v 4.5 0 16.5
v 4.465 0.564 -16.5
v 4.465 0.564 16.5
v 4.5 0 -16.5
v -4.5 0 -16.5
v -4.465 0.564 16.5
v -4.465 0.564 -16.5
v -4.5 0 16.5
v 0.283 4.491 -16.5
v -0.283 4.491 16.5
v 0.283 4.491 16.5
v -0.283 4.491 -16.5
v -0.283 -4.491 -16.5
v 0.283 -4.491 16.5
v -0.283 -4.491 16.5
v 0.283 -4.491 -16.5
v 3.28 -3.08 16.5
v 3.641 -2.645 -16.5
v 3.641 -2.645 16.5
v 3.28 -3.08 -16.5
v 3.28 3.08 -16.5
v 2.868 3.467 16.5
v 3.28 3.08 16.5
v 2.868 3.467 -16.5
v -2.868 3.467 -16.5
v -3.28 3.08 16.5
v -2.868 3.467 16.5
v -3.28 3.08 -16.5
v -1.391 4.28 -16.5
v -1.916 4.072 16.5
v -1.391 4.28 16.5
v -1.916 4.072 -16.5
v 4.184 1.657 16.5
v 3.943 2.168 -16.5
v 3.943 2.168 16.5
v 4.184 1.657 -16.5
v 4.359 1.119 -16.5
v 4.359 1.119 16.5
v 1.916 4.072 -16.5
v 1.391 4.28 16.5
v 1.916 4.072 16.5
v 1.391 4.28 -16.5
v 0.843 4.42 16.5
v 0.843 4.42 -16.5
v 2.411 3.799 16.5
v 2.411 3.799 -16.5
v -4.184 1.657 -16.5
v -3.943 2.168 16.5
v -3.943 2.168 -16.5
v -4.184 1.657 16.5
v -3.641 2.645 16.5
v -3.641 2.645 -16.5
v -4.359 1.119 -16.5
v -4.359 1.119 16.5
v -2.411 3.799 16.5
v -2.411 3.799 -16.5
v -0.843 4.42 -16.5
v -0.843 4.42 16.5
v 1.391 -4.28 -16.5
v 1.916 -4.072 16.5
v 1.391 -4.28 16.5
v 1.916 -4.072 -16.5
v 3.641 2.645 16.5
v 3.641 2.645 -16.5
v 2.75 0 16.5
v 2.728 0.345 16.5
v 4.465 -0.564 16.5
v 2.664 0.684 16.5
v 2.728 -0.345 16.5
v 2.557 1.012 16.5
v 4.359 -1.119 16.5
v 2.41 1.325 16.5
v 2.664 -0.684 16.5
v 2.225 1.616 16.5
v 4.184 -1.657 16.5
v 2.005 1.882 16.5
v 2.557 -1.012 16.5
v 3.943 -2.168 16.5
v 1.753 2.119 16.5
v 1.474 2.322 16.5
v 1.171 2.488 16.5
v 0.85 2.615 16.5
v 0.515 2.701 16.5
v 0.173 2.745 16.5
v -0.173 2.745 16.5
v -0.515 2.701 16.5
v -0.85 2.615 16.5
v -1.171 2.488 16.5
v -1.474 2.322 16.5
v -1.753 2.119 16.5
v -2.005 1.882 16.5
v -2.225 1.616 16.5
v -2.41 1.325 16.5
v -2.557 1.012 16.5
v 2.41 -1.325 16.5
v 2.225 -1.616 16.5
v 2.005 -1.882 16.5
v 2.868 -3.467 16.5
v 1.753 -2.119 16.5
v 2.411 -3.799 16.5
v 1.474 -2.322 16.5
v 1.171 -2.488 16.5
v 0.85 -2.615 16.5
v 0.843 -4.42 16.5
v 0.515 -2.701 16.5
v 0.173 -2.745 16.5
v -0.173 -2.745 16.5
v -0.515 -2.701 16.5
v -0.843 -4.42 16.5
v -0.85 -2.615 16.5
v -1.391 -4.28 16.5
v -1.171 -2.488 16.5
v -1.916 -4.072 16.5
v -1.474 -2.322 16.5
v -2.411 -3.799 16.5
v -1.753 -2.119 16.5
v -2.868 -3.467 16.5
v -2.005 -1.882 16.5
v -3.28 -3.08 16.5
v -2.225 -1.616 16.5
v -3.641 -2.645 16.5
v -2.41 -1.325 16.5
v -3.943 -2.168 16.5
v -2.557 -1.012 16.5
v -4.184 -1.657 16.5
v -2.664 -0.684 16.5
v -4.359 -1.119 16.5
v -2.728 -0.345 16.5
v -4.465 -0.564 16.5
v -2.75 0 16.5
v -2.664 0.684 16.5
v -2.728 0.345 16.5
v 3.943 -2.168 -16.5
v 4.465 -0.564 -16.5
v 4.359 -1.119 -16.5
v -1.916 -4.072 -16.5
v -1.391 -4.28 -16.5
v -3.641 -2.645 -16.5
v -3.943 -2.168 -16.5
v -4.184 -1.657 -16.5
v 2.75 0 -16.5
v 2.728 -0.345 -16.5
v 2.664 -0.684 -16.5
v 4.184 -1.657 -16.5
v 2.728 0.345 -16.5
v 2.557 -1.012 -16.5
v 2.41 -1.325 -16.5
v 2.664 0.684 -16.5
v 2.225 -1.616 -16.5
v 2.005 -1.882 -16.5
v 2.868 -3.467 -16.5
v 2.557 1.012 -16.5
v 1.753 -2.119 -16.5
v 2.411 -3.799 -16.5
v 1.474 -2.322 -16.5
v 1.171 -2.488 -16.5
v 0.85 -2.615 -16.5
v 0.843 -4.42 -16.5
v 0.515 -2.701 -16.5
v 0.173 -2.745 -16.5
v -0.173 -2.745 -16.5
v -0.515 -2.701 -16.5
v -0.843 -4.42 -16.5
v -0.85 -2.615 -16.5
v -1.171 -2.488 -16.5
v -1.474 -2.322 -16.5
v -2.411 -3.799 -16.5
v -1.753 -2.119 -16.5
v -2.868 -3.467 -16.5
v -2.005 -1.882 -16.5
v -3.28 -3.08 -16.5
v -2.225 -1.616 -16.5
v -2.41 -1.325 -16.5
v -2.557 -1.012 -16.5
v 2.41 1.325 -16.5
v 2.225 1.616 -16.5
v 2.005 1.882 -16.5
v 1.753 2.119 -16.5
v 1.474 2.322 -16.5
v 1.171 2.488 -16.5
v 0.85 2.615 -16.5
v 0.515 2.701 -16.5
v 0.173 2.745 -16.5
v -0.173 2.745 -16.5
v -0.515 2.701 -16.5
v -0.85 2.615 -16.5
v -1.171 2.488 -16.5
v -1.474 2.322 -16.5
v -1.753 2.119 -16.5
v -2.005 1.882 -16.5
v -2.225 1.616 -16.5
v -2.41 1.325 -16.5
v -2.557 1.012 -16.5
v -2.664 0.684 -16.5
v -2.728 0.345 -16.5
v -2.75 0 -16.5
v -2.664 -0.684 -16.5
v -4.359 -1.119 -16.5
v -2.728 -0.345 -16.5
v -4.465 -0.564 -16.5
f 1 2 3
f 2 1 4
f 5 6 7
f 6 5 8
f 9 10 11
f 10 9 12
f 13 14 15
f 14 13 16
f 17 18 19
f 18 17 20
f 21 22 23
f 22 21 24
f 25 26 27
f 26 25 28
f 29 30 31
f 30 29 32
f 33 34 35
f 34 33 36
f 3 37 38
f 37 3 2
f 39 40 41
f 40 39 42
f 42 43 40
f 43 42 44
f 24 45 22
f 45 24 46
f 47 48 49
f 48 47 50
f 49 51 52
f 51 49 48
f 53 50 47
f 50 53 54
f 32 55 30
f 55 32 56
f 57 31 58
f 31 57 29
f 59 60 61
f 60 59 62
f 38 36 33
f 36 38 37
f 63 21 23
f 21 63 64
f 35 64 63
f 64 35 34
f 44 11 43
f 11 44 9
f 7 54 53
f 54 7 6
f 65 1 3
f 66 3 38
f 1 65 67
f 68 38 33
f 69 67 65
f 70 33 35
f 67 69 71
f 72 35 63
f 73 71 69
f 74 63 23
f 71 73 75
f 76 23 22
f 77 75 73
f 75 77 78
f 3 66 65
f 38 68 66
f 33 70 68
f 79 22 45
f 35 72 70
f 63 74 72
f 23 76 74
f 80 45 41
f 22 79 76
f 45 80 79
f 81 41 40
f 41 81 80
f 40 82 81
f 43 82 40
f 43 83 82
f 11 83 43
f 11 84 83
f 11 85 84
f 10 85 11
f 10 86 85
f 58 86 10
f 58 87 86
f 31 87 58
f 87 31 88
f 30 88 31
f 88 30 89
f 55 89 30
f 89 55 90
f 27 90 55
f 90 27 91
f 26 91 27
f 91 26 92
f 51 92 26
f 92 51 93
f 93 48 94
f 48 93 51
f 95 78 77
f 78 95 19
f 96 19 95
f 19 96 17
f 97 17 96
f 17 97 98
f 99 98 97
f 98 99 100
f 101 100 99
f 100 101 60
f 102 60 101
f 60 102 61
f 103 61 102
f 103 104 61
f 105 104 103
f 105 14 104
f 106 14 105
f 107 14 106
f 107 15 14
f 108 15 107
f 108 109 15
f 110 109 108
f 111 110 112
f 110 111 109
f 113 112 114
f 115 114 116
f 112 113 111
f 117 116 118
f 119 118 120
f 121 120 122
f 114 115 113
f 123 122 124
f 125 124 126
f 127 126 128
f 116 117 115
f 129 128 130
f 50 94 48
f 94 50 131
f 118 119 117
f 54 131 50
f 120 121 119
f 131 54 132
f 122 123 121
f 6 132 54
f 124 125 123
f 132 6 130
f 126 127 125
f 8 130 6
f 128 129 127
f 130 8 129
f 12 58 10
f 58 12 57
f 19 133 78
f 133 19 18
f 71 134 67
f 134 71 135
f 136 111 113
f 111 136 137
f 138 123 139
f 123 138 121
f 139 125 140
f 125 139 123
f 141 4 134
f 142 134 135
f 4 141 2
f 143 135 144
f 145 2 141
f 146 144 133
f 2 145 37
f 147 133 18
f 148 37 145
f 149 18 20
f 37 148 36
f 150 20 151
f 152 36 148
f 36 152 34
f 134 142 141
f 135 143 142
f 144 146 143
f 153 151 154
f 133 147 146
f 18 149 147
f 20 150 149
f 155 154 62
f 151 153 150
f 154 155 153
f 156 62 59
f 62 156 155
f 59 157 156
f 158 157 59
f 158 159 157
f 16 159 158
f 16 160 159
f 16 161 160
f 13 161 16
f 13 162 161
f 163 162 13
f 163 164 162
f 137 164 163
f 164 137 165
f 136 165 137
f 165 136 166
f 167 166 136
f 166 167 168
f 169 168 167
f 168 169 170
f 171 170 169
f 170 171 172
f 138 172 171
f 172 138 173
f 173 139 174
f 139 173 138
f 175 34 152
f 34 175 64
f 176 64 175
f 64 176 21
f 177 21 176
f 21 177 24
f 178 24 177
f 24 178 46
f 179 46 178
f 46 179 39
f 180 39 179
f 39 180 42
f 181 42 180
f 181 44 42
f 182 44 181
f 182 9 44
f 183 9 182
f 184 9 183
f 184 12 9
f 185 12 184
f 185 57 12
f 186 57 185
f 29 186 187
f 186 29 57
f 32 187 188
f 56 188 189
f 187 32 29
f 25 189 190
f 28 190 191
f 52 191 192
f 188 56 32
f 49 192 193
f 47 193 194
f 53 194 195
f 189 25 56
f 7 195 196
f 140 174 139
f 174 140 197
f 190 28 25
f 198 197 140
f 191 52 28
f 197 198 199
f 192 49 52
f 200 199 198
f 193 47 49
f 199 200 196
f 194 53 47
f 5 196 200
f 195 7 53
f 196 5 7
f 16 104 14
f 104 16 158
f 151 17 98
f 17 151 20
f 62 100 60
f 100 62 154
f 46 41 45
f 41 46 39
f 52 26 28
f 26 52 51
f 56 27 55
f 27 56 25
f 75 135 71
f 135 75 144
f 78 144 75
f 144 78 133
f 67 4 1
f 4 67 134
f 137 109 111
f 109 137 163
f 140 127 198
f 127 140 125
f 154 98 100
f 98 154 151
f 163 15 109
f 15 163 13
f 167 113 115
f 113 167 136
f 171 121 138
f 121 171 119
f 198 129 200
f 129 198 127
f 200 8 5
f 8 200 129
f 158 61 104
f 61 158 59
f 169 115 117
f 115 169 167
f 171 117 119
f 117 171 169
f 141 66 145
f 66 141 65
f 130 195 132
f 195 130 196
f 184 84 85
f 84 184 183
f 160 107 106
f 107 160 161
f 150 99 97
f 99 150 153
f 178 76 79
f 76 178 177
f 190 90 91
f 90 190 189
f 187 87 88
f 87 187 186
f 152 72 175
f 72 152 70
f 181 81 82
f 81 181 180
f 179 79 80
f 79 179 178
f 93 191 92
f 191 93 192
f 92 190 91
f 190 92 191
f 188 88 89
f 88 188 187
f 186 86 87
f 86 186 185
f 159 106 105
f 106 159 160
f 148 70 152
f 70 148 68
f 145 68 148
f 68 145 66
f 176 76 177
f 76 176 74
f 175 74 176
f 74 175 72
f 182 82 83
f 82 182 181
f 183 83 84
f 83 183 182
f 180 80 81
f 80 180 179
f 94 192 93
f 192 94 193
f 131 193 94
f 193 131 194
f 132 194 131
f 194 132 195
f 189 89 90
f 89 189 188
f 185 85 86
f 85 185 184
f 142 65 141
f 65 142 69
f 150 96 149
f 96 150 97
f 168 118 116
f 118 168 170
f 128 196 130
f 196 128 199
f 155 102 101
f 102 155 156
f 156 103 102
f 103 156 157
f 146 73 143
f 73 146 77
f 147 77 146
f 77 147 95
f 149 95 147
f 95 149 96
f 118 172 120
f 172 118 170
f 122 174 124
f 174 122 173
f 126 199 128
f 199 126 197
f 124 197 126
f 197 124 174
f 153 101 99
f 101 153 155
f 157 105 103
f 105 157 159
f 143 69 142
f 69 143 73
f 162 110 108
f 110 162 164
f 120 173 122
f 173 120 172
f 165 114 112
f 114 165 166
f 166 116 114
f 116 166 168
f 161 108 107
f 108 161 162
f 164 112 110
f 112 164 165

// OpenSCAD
$fn = 50;


difference() {
	union() {
		translate(v = [0, 0, -16.5000000000]) {
			cylinder(h = 33, r = 4.5000000000);
		}
	}
	union() {
		translate(v = [0, 0, -100.0000000000]) {
			cylinder(h = 200, r = 2.7500000000);
		}
	}
}
